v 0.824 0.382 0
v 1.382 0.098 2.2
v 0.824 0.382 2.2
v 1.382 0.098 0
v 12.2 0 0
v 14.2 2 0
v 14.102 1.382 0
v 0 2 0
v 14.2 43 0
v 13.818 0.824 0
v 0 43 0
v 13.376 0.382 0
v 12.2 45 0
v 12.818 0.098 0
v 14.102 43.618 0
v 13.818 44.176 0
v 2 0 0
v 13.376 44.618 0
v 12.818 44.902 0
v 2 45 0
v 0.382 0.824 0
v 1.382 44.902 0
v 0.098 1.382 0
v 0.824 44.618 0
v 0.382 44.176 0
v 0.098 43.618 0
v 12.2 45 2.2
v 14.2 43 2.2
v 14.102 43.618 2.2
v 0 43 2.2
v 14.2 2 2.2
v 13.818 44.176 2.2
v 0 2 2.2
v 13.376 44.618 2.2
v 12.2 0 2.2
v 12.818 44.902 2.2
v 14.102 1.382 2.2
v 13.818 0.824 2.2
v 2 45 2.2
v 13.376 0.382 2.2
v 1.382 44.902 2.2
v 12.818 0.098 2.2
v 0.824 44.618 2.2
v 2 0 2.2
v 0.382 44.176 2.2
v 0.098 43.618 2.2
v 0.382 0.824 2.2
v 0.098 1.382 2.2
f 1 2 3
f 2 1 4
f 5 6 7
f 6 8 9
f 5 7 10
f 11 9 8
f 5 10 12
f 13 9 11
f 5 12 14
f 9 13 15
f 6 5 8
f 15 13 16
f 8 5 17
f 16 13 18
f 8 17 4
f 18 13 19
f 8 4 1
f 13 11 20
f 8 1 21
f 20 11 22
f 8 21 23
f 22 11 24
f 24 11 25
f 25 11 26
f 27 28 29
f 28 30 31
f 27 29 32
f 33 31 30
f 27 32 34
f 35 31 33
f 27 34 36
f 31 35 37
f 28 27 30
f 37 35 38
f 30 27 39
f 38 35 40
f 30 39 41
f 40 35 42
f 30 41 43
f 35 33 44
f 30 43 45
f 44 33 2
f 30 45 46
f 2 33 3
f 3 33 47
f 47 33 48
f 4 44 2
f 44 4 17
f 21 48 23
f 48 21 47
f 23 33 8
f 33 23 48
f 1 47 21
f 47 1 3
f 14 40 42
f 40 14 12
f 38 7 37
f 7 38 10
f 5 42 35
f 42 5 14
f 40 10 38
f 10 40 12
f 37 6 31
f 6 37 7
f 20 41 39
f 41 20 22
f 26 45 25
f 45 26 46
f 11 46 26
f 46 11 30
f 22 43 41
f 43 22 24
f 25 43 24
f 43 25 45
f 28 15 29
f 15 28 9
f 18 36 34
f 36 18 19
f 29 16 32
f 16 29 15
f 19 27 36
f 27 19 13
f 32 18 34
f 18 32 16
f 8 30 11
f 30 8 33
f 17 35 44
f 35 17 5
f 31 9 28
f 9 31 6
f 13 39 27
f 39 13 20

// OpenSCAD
// file: ../shapes.scad
module roundedCube(size, radius, center = false) {
  translate([center ? -(size[0] / 2) : 0, center ? -(size[1] / 2) : 0, center ? -(size[2] / 2) : 0]) {
    translate([radius, radius, 0]) cube([size[0] - radius * 2, size[1] - radius * 2, size[2]]);

    for (y = [0:1]) {
      for (x = [0:1]) {
        translate([x * (size[0] - radius * 2) + radius, y * (size[1] - radius * 2) + radius, 0]) cylinder(r=radius, h=size[2]);
      }
    }

    for (i = [0:1]) {
      translate([i * (size[0] - radius), radius, 0]) cube([radius, size[1] - radius * 2, size[2]]);
      translate([radius, i * (size[1] - radius), 0]) cube([size[0] - radius * 2, radius, size[2]]);
    }
  }
}
// file: const.scad
tolerance = .2;
shift = 1;

tile_width = 14.2;
tile_height = 45;
tile_depth = 2.2;
tile_radius = 2;

holder_edge = 2;
holder_width = tile_width + holder_edge + 5 * tolerance;
holder_height = tile_height + holder_edge + 5 * tolerance;
holder_depth = tile_depth + holder_edge + 5 * tolerance;

rod_radius = 4;

link_indent = 1.6;
link_innerradius = 4;
link_outerradius = 6;

base_edge = 4;

foot_height = 1;
foot_radius = 2;
// main file
include <const.scad>
use <../shapes.scad>

tile();

module tile() {
  roundedCube([tile_width, tile_height, tile_depth], radius=tile_radius, $fn=20);
}
